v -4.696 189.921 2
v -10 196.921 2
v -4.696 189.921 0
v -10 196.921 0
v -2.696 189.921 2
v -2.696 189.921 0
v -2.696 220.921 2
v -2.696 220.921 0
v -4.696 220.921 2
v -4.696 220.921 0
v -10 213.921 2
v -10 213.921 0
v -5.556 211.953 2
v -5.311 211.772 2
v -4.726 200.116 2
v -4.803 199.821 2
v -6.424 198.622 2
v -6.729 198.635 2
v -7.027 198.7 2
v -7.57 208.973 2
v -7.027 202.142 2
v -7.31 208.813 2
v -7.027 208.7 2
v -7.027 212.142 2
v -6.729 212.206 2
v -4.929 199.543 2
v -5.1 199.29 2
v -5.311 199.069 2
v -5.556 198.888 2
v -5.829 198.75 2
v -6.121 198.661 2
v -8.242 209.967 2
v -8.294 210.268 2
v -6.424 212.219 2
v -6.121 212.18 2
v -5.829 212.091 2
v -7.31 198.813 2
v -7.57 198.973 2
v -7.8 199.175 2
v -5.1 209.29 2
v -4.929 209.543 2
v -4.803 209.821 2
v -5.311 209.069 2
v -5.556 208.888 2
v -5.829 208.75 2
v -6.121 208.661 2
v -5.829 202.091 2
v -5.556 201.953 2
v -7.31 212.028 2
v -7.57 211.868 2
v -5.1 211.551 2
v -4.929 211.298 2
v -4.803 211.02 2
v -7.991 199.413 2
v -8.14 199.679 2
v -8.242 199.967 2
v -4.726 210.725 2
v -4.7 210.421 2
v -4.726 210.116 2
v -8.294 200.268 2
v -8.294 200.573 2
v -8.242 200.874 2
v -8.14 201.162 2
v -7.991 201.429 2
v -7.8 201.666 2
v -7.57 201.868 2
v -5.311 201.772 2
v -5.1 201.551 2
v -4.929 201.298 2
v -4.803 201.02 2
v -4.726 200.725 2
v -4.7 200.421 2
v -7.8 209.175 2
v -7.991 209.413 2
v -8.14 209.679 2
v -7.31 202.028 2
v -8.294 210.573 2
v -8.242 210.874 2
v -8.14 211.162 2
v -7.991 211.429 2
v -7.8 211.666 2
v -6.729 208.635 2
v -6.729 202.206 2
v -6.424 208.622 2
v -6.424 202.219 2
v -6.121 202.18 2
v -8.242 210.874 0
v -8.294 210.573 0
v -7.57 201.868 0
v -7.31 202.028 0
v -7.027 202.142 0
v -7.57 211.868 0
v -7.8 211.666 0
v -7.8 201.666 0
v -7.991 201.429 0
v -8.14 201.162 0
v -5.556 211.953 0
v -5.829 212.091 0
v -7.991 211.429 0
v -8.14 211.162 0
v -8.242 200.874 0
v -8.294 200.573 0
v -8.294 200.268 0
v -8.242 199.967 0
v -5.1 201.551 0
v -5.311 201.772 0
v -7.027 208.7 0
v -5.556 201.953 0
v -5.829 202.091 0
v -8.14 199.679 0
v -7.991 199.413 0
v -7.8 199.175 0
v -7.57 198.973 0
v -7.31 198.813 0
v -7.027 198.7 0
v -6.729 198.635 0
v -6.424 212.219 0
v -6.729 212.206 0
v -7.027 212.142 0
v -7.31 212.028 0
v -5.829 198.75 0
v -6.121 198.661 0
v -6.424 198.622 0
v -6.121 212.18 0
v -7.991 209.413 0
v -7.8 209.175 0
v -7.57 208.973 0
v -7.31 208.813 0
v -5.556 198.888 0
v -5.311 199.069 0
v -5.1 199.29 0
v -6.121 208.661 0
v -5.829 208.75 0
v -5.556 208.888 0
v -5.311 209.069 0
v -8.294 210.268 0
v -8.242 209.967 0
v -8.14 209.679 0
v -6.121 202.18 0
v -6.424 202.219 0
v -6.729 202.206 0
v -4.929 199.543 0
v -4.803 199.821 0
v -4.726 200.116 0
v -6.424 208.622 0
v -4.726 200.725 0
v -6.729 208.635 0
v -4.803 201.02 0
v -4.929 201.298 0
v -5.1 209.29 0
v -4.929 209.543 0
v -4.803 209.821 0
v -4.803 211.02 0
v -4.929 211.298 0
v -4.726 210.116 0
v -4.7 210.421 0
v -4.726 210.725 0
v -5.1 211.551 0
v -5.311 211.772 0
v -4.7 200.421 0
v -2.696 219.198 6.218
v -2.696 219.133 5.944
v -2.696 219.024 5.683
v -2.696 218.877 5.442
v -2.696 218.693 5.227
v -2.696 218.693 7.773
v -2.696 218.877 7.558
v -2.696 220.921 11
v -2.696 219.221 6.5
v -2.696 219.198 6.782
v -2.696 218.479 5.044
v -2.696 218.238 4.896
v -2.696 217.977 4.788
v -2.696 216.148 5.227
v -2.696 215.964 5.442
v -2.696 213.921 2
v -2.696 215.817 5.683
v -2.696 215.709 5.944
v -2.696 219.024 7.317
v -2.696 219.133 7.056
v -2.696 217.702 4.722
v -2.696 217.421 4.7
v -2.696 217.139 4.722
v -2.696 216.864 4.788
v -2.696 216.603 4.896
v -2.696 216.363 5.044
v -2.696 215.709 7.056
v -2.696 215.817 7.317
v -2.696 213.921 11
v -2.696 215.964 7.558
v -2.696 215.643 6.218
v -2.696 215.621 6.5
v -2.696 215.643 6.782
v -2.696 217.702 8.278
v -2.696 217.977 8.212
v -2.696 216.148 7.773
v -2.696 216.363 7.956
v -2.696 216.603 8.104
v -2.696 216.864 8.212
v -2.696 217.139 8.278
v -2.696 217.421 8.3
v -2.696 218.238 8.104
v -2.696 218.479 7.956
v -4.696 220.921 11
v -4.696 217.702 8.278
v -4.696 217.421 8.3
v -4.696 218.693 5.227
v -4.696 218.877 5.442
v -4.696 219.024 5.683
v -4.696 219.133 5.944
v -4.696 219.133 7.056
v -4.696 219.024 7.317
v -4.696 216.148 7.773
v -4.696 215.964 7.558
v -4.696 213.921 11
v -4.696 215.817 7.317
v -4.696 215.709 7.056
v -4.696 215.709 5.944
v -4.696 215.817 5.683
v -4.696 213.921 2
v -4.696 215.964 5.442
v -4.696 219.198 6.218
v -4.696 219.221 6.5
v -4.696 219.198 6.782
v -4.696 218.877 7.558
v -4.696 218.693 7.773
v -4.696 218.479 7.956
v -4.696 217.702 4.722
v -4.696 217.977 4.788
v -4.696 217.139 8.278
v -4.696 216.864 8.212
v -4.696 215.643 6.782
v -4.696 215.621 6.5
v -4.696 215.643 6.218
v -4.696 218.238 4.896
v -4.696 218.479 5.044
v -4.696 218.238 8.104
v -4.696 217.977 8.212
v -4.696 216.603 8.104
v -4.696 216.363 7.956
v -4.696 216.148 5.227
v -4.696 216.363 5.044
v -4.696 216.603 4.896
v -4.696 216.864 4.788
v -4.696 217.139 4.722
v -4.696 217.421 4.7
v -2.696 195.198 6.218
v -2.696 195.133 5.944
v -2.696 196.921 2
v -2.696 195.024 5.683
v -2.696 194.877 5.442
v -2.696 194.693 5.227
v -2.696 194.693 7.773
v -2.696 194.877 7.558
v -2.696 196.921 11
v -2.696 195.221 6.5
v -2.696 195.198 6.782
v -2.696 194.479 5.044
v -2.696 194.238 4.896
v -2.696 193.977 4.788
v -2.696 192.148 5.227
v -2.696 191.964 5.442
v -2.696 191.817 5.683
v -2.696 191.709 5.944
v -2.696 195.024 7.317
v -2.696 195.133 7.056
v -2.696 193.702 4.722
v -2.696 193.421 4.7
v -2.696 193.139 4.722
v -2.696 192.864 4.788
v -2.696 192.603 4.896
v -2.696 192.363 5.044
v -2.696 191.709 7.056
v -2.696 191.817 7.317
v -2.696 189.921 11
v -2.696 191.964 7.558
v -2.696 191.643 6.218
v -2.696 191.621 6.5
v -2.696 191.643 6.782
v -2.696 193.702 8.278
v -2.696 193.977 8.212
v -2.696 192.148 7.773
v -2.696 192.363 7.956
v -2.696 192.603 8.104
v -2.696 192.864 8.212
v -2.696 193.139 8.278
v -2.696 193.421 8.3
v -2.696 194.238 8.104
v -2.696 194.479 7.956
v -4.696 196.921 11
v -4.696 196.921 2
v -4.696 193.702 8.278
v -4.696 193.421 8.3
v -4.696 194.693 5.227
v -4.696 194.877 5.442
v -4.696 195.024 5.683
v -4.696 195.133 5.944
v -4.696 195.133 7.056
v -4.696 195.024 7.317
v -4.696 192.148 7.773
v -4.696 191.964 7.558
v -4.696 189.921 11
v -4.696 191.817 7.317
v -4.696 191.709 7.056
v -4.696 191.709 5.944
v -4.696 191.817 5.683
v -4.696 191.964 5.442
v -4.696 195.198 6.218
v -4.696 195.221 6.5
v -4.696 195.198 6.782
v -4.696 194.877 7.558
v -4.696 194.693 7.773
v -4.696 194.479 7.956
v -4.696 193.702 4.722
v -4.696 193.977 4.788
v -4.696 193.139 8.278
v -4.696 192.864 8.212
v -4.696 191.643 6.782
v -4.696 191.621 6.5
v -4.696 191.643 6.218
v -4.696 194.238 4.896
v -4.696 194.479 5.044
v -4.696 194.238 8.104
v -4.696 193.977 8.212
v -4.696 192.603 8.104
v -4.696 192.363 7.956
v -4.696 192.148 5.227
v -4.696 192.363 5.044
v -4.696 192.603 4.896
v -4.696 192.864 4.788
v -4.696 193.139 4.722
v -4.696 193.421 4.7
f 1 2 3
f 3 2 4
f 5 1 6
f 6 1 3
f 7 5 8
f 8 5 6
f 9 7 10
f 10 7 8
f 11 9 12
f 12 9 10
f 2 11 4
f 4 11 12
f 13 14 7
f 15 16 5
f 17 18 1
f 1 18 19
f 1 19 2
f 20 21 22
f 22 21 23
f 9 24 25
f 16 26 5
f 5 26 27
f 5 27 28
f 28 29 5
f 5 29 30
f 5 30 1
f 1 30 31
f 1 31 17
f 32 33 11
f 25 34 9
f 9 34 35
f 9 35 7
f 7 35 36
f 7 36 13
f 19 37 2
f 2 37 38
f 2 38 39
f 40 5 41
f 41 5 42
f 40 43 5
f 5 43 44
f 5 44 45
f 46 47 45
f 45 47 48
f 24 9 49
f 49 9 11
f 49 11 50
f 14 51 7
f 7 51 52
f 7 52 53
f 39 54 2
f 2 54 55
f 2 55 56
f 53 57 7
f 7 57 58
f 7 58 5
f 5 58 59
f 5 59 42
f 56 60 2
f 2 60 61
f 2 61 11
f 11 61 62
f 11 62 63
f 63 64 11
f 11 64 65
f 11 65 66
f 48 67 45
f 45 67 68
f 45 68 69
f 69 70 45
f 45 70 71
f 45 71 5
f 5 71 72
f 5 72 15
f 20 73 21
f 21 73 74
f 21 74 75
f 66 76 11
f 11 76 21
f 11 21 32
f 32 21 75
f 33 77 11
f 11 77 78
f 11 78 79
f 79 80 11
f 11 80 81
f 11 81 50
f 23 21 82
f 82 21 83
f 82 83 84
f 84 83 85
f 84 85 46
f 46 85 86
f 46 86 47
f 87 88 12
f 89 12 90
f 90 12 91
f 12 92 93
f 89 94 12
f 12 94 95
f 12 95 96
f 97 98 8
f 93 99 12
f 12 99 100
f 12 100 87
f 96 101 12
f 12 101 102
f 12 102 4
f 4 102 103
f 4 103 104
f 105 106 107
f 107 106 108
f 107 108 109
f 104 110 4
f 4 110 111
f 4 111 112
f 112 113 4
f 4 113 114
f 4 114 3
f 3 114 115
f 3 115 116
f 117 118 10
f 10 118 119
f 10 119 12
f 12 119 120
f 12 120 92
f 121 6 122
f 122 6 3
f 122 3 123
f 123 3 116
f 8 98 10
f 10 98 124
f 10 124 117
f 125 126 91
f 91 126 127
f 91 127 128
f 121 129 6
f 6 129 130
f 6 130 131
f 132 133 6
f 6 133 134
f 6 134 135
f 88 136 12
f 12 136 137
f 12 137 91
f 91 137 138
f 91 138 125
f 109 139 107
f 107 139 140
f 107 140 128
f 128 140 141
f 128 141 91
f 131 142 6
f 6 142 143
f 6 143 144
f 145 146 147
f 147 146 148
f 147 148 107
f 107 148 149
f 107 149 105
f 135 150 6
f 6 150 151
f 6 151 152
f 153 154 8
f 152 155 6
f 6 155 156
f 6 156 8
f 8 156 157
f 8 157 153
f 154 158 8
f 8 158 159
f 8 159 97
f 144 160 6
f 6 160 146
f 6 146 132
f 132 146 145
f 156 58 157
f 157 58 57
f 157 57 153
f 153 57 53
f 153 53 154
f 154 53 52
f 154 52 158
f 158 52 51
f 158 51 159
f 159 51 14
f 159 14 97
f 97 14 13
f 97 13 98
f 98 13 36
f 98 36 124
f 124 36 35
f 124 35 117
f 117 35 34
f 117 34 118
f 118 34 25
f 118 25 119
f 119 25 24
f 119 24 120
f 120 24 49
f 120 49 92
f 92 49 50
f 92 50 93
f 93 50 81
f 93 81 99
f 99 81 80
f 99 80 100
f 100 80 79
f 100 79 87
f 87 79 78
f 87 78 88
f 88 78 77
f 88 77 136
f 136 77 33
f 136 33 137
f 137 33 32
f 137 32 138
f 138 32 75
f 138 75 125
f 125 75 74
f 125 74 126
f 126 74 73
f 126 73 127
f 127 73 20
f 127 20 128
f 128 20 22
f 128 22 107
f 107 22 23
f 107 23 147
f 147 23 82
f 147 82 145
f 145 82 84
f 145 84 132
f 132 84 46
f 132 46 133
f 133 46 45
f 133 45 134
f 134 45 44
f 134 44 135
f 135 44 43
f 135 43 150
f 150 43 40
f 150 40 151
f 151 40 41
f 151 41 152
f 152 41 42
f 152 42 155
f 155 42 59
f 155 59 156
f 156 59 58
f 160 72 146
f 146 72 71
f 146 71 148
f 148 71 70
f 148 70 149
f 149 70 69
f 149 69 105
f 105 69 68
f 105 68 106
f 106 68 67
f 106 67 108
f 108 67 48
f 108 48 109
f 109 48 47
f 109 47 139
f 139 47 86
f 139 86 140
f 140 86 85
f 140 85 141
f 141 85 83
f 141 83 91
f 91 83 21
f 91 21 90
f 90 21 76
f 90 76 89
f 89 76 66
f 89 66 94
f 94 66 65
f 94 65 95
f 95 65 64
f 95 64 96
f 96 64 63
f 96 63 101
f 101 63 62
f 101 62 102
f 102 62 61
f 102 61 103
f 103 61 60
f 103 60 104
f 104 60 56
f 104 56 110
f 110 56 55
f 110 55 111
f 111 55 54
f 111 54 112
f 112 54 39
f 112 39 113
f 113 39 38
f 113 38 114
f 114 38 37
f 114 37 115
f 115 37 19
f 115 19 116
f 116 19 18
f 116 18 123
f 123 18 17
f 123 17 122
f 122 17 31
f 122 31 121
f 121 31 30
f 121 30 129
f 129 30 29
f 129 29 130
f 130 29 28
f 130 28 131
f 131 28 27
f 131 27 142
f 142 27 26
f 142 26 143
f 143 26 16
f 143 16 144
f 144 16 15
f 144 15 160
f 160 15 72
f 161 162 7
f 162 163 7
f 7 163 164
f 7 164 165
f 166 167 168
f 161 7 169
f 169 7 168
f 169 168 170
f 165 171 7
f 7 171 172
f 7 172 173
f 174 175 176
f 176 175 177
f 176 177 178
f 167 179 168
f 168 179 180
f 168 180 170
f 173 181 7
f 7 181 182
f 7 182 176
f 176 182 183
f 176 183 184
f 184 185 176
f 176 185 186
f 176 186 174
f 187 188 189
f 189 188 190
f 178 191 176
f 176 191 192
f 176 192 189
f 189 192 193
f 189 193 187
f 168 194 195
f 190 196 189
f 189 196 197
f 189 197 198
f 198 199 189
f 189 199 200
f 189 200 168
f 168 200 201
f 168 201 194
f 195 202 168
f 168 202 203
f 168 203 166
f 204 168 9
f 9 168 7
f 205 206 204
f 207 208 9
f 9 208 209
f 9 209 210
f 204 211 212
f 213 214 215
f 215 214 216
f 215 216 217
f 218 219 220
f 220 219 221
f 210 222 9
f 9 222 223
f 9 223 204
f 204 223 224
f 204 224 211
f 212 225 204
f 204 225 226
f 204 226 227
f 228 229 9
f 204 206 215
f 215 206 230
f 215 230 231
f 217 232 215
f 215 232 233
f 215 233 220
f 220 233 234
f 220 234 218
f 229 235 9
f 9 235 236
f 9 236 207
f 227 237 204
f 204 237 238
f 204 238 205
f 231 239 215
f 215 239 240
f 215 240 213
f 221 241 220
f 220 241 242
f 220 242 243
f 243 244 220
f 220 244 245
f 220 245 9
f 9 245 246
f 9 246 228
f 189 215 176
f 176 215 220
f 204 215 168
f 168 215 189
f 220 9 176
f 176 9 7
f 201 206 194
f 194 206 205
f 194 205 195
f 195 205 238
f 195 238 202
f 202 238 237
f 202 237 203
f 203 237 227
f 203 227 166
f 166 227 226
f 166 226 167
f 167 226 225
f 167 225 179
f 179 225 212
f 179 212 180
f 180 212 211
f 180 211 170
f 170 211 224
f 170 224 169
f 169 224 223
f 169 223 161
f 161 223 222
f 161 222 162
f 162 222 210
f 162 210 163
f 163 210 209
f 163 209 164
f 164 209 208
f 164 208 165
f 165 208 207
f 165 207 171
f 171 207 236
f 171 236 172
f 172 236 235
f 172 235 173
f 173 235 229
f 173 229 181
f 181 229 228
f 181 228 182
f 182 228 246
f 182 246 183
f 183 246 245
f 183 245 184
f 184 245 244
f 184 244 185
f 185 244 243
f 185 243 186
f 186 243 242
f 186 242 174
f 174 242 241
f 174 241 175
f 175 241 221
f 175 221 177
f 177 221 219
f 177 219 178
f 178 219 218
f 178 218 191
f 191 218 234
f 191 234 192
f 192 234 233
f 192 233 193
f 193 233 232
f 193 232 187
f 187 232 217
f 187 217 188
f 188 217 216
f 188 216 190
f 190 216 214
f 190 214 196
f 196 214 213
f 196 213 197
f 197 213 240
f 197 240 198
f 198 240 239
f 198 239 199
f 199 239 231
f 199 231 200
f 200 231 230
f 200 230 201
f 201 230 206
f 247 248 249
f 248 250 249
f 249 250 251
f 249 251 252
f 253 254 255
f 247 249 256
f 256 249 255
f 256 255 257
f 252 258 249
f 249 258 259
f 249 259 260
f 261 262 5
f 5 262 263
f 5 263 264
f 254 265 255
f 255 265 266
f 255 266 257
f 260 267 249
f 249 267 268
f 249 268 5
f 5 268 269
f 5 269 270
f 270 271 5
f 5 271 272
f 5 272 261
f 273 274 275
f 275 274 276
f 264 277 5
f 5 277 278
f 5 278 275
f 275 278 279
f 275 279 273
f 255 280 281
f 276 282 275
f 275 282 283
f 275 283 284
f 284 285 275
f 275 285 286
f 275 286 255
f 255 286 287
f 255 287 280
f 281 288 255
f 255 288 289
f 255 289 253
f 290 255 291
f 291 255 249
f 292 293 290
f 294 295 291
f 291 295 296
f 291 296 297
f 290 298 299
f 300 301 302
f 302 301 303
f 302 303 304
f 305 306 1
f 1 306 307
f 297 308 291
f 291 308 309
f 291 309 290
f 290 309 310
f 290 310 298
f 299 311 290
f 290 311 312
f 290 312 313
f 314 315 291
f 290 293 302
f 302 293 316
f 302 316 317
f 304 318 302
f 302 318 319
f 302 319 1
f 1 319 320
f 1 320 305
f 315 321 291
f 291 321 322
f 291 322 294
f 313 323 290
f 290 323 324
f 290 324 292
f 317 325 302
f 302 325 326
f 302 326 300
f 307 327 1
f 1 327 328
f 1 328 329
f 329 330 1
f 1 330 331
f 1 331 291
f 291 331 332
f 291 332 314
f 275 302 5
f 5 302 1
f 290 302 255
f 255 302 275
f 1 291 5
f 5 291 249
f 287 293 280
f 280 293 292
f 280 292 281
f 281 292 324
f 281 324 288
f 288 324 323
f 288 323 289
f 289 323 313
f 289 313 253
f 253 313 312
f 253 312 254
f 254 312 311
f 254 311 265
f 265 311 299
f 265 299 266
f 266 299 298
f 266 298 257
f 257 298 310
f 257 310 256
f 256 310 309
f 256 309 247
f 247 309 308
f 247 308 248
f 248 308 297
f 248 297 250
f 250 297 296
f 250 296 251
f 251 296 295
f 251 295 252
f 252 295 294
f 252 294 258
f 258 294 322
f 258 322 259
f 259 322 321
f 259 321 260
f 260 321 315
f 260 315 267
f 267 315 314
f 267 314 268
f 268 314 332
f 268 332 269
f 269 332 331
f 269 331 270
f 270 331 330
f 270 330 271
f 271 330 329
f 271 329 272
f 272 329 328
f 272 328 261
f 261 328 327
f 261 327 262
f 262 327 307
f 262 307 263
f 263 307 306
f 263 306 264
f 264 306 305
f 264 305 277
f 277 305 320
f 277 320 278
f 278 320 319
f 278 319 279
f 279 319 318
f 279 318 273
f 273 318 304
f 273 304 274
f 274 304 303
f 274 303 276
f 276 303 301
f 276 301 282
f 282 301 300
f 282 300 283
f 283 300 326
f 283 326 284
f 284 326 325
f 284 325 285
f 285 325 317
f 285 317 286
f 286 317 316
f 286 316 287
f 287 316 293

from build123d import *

# Parameters (mm, degrees)
SKETCH2_W                     = 7.304410209
SKETCH2_H                     = 17
BOSS_EXTRUDE1_DEPTH           = 2
M3_CLEARANCE_HOLE1_D          = 3.6
SKETCH6_W                     = 2
SKETCH6_H                     = 7
BOSS_EXTRUDE2_DEPTH           = 9
BOSS_EXTRUDE2_2_DEPTH         = 9
SKETCH8_W                     = 1.8
SKETCH8_H                     = 2
M3_CLEARANCE_HOLE2_AT_2_COUNT = 2
M3_CLEARANCE_HOLE2_AT_2_PITCH = 24


with BuildPart() as part:
    # Sketch2 → Boss-Extrude1 (new body)
    with BuildSketch(Plane.XY):
        Polygon((-4.695589791, 189.920635549), (-10, 196.920635549), (-2.695589791, 196.920635549), (-2.695589791, 189.920635549), align=None)
        Polygon((-2.695589791, 220.920635549), (-4.695589791, 220.920635549), (-10, 213.920635549), (-2.695589791, 213.920635549), align=None)
        with Locations((-6.347794895, 205.420635549)):
            Rectangle(SKETCH2_W, SKETCH2_H)
    extrude(amount=BOSS_EXTRUDE1_DEPTH)

    # M3 Clearance Hole1 (through all)
    with Locations(Plane.XY.offset(2)):
        with Locations((-6.5, 200.420635549), (-6.5, 210.420635549)):
            Hole(M3_CLEARANCE_HOLE1_D / 2)


with BuildPart() as body_2:
    # Sketch6 → Boss-Extrude2 (new body)
    with BuildSketch(Plane.XY.offset(2)):
        with Locations((-3.695589791, 217.420635549)):
            Rectangle(SKETCH6_W, SKETCH6_H)
    extrude(amount=BOSS_EXTRUDE2_DEPTH)


with BuildPart() as body_3:
    # Sketch6 → Boss-Extrude2 2 (new body)
    with BuildSketch(Plane.XY.offset(2)):
        with Locations((-3.695589791, 193.420635549)):
            Rectangle(SKETCH6_W, SKETCH6_H)
    extrude(amount=BOSS_EXTRUDE2_2_DEPTH)

    # Sketch8 → M3 Clearance Hole2 (revolve, cut)
    with BuildSketch(Plane(origin=(-4.695589791, 193.420635549, 6.5), x_dir=(0, 0, 1), z_dir=(0, 1, 0))):
        with Locations((0.9, 1)):
            Rectangle(SKETCH8_W, SKETCH8_H)
    m3_clearance_hole2 = revolve(axis=Axis((-11.045589791, 193.420635549, 6.5), (1, 0, 0)), mode=Mode.SUBTRACT)


with BuildPart() as body_2_1:
    add(body_2.part)

    # M3 Clearance Hole2 at 2: M3 Clearance Hole2 ×2
    with Locations(*[(0, i * M3_CLEARANCE_HOLE2_AT_2_PITCH, 0) for i in range(1, M3_CLEARANCE_HOLE2_AT_2_COUNT)]):
        add(m3_clearance_hole2, mode=Mode.SUBTRACT)


solid = Compound([part.part, body_3.part, body_2_1.part])
